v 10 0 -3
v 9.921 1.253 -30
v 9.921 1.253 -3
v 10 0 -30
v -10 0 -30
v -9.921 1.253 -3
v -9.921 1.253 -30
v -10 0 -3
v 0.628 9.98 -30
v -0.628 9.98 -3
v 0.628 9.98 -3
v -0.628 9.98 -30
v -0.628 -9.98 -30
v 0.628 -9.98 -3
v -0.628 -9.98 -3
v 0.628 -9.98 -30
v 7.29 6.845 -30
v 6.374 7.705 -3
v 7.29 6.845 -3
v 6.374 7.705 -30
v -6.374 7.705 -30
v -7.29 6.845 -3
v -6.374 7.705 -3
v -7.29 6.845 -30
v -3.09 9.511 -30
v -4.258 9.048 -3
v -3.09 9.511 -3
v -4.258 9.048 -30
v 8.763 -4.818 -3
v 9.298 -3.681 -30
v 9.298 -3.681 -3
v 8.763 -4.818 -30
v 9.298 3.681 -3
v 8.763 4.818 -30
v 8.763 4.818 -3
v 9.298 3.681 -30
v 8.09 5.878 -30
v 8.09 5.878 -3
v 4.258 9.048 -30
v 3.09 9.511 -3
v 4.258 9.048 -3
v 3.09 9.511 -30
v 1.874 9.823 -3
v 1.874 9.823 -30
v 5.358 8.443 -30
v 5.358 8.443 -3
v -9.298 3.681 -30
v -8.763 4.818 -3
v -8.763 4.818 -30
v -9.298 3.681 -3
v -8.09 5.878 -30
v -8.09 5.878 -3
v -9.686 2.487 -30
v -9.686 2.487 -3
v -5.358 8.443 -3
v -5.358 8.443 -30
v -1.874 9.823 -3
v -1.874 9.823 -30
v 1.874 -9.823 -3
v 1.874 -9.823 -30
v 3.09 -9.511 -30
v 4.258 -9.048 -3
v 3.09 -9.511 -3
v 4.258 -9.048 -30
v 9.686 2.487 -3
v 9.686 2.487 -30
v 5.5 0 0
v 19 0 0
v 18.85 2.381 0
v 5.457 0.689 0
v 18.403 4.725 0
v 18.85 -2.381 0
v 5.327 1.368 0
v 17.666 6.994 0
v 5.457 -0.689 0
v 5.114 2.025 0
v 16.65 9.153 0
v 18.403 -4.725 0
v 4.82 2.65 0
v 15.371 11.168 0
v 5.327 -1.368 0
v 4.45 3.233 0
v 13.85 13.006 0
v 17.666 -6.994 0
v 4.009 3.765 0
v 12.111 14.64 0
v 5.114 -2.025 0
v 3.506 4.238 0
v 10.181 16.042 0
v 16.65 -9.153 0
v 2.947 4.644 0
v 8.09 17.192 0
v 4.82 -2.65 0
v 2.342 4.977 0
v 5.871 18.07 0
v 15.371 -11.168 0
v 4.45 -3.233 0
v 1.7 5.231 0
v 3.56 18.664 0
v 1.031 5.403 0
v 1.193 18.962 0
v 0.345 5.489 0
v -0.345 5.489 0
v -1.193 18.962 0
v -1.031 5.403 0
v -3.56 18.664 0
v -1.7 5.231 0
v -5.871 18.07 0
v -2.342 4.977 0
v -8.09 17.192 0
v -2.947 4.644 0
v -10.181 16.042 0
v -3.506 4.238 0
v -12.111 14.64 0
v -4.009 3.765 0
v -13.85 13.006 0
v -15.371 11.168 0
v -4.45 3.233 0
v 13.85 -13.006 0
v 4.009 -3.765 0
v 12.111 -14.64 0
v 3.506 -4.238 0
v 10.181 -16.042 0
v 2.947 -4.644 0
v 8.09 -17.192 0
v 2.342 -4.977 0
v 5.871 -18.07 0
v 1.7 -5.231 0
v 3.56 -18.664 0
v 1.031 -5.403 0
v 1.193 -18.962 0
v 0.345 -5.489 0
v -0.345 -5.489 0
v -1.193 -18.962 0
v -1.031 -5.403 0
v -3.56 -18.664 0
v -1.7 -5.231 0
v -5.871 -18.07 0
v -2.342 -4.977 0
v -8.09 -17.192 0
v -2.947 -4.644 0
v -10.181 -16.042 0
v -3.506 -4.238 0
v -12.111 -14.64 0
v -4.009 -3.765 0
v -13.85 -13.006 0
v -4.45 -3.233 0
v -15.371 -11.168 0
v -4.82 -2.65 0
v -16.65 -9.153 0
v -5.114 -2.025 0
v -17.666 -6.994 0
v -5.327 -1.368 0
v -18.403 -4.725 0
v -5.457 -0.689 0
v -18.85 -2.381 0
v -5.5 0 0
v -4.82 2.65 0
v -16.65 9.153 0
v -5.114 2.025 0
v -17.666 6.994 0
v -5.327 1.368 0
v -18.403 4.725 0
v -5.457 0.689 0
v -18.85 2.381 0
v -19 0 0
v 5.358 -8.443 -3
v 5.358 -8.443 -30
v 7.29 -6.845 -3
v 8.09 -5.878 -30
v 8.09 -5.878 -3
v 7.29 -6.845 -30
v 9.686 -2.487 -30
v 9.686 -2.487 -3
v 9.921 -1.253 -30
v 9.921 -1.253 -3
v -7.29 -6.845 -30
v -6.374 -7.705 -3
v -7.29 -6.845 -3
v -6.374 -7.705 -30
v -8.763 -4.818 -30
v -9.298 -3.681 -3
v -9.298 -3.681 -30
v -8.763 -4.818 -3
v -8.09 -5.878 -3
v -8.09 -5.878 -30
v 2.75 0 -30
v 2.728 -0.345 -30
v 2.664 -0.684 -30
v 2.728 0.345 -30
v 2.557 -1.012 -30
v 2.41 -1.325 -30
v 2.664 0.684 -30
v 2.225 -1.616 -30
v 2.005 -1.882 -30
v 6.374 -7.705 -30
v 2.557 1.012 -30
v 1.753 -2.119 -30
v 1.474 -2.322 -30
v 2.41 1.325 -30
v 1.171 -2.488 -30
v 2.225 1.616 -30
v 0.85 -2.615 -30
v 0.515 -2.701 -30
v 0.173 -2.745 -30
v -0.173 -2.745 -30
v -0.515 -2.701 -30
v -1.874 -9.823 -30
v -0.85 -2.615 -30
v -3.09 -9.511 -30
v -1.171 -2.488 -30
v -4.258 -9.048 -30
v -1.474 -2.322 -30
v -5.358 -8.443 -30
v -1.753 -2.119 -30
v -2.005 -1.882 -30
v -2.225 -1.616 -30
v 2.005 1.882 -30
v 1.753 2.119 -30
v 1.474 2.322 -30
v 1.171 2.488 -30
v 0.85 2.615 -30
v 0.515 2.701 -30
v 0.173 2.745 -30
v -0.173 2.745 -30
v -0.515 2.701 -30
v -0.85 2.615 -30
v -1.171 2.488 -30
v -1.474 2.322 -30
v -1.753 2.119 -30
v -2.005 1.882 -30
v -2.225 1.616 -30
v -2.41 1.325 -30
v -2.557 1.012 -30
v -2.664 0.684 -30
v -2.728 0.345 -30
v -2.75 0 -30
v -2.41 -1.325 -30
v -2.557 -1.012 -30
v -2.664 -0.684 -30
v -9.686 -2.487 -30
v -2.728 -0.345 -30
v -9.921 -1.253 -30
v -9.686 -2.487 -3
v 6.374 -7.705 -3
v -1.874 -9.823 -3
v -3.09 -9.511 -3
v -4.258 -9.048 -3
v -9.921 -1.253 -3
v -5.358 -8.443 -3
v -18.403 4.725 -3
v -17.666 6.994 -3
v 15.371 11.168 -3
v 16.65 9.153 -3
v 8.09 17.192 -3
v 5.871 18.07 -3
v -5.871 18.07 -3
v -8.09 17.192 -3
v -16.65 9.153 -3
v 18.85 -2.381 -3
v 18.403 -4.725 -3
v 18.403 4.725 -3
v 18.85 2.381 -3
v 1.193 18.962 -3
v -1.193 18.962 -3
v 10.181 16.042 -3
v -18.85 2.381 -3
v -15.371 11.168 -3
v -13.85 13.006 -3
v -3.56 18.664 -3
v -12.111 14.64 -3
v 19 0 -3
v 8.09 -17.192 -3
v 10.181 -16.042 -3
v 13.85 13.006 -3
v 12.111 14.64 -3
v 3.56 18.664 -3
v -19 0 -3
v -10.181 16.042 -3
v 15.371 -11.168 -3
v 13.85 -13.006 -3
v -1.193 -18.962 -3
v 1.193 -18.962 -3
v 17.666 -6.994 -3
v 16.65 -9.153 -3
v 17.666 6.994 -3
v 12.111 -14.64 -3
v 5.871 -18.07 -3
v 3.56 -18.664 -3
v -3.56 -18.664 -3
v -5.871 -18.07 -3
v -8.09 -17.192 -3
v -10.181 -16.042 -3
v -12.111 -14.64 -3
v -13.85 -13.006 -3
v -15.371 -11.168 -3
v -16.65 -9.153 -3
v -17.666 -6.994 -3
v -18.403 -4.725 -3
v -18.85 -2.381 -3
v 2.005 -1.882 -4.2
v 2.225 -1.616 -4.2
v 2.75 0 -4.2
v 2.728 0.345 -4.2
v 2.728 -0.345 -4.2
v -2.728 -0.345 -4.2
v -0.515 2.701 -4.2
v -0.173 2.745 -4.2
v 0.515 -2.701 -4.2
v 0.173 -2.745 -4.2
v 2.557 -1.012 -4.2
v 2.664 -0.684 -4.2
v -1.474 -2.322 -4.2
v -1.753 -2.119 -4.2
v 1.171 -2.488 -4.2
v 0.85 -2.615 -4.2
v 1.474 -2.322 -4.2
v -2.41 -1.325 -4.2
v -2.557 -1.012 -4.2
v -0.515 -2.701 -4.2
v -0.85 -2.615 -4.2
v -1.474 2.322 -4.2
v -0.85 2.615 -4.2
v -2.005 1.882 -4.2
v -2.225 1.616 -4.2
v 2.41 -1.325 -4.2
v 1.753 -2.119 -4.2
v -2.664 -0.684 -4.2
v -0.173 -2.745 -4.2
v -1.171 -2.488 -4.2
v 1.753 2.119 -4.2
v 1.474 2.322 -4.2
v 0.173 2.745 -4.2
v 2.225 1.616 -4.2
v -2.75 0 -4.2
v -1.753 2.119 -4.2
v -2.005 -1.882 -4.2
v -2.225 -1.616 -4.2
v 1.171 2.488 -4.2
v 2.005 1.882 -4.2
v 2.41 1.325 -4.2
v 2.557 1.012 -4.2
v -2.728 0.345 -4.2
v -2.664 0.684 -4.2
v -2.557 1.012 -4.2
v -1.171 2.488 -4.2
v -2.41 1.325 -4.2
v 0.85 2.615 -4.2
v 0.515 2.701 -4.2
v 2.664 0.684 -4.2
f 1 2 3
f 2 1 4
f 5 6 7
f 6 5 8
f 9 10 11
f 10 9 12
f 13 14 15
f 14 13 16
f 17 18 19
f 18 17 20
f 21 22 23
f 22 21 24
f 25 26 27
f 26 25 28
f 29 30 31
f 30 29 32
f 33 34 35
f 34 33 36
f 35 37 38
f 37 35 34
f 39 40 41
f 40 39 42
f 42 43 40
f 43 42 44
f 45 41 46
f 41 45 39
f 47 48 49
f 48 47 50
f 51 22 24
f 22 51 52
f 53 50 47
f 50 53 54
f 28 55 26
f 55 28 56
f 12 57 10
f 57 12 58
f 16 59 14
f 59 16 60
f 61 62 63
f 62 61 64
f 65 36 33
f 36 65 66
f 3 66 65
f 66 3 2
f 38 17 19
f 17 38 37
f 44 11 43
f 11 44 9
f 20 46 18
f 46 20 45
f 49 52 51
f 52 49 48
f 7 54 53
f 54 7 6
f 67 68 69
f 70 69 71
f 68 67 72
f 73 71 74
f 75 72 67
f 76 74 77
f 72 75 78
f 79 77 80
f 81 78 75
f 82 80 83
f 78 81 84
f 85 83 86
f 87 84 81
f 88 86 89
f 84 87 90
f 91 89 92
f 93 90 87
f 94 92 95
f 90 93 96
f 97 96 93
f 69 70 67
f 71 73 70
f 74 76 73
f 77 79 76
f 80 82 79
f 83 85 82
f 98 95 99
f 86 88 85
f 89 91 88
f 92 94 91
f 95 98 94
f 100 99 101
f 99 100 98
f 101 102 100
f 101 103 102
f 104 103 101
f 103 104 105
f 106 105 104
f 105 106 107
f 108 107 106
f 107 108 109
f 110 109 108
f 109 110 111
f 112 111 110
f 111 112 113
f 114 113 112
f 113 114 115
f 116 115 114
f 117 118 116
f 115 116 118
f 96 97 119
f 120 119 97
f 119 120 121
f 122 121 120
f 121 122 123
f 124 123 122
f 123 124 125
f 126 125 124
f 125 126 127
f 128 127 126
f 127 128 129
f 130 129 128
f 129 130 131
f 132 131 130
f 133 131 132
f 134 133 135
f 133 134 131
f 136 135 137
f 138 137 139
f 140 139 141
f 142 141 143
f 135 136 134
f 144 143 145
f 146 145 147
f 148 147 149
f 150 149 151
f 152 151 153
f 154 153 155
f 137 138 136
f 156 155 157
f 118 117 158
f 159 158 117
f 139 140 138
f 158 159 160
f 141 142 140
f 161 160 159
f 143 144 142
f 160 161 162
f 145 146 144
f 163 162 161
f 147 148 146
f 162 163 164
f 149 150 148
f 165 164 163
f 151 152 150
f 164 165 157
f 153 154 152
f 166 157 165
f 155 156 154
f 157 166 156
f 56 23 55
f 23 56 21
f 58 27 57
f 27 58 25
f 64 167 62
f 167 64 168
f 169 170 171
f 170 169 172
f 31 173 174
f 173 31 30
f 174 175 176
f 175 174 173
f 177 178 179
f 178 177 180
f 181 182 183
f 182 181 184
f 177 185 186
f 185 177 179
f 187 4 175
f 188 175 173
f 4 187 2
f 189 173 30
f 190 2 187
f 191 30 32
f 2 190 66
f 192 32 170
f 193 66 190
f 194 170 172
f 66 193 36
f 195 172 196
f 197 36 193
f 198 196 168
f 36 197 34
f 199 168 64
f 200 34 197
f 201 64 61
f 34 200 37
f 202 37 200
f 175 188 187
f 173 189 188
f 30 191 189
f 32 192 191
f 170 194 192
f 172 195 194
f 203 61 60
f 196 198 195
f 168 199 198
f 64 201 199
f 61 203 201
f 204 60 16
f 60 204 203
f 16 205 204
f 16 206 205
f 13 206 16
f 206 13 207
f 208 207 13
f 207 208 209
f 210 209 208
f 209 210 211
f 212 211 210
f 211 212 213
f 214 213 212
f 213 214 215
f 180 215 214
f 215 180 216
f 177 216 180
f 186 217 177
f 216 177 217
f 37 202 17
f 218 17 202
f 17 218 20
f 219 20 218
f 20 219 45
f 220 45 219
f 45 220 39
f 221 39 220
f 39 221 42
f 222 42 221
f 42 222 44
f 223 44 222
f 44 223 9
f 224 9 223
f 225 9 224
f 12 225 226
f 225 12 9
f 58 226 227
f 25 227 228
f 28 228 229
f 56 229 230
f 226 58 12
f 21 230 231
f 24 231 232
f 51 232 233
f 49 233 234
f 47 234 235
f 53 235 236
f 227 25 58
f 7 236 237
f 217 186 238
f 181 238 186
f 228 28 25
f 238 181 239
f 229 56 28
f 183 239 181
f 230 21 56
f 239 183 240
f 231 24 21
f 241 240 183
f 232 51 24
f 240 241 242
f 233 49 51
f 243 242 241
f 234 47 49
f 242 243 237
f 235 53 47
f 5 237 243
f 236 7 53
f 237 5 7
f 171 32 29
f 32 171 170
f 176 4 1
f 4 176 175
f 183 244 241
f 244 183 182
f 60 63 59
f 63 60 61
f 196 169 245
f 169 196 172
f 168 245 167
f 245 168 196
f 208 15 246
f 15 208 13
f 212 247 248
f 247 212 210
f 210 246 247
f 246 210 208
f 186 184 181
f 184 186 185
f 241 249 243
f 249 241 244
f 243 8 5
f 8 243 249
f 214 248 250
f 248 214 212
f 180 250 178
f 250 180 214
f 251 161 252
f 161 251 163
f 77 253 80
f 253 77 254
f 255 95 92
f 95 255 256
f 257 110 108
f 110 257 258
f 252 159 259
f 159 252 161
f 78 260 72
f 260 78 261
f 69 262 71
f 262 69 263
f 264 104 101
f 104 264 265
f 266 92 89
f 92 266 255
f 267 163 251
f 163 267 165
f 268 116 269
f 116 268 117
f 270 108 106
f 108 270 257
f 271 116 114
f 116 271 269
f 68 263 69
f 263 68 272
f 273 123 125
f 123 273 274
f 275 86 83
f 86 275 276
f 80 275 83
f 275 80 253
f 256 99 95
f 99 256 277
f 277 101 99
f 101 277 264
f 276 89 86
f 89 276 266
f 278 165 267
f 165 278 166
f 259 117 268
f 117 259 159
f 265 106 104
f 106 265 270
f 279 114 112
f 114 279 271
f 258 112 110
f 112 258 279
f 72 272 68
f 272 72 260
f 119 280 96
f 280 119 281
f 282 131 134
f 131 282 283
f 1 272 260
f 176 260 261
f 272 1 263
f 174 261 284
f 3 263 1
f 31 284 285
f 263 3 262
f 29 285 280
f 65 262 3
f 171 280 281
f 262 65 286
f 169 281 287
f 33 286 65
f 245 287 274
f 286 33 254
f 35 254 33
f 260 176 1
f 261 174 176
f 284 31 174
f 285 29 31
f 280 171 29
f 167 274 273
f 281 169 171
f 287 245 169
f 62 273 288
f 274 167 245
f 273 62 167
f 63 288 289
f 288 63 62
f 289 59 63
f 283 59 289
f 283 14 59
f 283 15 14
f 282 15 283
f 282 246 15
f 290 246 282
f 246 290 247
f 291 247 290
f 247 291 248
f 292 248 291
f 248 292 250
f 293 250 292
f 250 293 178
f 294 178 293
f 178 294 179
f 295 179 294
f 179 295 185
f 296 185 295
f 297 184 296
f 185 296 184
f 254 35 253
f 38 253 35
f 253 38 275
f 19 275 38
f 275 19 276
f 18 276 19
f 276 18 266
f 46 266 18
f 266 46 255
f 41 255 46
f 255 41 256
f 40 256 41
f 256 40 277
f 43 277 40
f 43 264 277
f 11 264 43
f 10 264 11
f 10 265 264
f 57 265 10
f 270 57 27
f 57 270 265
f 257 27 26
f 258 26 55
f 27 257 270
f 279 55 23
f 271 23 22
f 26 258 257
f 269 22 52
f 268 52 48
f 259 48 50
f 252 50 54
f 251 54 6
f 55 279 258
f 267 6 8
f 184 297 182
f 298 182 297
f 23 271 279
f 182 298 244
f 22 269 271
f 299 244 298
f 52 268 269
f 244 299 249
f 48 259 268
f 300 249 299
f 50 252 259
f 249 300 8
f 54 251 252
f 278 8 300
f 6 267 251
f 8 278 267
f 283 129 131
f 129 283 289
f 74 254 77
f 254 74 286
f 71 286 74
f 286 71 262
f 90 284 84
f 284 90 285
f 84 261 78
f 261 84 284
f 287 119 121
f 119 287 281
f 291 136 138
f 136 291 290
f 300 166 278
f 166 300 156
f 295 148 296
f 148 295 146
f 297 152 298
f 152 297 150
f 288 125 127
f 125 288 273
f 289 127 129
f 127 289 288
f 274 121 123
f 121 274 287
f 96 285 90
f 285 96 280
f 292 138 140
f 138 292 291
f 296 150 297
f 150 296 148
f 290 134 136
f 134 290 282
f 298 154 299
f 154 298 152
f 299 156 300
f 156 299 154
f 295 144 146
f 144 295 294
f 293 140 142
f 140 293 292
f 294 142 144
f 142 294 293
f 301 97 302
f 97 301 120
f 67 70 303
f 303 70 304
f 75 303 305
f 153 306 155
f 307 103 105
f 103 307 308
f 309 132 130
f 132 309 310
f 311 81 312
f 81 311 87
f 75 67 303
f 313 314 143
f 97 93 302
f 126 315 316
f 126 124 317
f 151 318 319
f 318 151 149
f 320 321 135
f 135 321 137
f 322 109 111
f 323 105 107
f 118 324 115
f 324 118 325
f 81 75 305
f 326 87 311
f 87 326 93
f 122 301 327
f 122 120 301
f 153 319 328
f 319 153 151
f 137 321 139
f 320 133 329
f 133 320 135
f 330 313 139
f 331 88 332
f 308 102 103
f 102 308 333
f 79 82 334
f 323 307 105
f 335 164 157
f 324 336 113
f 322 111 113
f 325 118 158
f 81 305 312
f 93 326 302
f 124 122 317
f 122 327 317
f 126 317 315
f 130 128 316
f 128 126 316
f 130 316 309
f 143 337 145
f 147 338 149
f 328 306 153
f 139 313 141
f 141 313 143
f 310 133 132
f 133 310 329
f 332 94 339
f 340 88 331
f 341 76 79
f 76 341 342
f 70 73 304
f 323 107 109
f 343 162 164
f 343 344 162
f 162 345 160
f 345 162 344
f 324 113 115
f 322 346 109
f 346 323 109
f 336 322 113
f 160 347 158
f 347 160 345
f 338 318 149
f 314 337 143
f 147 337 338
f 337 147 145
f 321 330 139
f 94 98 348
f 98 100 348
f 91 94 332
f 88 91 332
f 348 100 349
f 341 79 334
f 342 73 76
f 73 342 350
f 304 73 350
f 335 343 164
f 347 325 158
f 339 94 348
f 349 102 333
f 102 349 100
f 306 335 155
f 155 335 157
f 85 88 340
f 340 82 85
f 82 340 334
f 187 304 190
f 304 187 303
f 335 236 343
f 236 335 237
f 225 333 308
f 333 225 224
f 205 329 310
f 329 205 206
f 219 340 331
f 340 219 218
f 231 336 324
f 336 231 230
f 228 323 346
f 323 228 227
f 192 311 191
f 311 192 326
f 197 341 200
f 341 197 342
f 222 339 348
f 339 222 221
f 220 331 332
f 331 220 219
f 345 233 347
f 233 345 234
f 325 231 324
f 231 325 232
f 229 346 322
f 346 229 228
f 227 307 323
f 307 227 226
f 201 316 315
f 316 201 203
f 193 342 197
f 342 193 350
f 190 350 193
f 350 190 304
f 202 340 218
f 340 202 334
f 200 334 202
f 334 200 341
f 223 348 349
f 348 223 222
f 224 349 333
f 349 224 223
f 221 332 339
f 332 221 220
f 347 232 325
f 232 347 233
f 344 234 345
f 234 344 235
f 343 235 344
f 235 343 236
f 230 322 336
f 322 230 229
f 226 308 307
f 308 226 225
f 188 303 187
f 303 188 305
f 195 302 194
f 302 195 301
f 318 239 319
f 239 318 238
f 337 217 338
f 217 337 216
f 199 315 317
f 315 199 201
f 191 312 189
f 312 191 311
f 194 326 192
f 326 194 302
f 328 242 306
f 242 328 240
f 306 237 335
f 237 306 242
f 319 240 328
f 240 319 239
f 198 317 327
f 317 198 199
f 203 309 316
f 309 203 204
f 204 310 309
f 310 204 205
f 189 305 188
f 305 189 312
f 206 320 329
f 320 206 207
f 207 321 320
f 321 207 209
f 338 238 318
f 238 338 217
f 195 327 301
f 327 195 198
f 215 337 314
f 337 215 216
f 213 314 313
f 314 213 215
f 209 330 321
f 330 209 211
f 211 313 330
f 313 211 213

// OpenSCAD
$fn = 50;


difference() {
	union() {
		translate(v = [0, 0, -30.0000000000]) {
			cylinder(h = 30, r = 10.0000000000);
		}
		translate(v = [0, 0, -3.0000000000]) {
			cylinder(h = 3, r = 19.0000000000);
		}
	}
	union() {
		translate(v = [0, 0, 0]) {
			rotate(a = [0, 0, 0]) {
				difference() {
					union() {
						#translate(v = [0, 0, -30.0000000000]) {
							cylinder(h = 30, r = 2.2500000000);
						}
						#translate(v = [0, 0, -4.2000000000]) {
							cylinder(h = 4.2000000000, r = 10.0000000000, r1 = 2.7500000000, r2 = 5.5000000000);
						}
						#translate(v = [0, 0, -30.0000000000]) {
							cylinder(h = 30, r = 2.7500000000);
						}
						#translate(v = [0, 0, -30.0000000000]) {
							cylinder(h = 30, r = 2.2500000000);
						}
					}
					union();
				}
			}
		}
	}
}
